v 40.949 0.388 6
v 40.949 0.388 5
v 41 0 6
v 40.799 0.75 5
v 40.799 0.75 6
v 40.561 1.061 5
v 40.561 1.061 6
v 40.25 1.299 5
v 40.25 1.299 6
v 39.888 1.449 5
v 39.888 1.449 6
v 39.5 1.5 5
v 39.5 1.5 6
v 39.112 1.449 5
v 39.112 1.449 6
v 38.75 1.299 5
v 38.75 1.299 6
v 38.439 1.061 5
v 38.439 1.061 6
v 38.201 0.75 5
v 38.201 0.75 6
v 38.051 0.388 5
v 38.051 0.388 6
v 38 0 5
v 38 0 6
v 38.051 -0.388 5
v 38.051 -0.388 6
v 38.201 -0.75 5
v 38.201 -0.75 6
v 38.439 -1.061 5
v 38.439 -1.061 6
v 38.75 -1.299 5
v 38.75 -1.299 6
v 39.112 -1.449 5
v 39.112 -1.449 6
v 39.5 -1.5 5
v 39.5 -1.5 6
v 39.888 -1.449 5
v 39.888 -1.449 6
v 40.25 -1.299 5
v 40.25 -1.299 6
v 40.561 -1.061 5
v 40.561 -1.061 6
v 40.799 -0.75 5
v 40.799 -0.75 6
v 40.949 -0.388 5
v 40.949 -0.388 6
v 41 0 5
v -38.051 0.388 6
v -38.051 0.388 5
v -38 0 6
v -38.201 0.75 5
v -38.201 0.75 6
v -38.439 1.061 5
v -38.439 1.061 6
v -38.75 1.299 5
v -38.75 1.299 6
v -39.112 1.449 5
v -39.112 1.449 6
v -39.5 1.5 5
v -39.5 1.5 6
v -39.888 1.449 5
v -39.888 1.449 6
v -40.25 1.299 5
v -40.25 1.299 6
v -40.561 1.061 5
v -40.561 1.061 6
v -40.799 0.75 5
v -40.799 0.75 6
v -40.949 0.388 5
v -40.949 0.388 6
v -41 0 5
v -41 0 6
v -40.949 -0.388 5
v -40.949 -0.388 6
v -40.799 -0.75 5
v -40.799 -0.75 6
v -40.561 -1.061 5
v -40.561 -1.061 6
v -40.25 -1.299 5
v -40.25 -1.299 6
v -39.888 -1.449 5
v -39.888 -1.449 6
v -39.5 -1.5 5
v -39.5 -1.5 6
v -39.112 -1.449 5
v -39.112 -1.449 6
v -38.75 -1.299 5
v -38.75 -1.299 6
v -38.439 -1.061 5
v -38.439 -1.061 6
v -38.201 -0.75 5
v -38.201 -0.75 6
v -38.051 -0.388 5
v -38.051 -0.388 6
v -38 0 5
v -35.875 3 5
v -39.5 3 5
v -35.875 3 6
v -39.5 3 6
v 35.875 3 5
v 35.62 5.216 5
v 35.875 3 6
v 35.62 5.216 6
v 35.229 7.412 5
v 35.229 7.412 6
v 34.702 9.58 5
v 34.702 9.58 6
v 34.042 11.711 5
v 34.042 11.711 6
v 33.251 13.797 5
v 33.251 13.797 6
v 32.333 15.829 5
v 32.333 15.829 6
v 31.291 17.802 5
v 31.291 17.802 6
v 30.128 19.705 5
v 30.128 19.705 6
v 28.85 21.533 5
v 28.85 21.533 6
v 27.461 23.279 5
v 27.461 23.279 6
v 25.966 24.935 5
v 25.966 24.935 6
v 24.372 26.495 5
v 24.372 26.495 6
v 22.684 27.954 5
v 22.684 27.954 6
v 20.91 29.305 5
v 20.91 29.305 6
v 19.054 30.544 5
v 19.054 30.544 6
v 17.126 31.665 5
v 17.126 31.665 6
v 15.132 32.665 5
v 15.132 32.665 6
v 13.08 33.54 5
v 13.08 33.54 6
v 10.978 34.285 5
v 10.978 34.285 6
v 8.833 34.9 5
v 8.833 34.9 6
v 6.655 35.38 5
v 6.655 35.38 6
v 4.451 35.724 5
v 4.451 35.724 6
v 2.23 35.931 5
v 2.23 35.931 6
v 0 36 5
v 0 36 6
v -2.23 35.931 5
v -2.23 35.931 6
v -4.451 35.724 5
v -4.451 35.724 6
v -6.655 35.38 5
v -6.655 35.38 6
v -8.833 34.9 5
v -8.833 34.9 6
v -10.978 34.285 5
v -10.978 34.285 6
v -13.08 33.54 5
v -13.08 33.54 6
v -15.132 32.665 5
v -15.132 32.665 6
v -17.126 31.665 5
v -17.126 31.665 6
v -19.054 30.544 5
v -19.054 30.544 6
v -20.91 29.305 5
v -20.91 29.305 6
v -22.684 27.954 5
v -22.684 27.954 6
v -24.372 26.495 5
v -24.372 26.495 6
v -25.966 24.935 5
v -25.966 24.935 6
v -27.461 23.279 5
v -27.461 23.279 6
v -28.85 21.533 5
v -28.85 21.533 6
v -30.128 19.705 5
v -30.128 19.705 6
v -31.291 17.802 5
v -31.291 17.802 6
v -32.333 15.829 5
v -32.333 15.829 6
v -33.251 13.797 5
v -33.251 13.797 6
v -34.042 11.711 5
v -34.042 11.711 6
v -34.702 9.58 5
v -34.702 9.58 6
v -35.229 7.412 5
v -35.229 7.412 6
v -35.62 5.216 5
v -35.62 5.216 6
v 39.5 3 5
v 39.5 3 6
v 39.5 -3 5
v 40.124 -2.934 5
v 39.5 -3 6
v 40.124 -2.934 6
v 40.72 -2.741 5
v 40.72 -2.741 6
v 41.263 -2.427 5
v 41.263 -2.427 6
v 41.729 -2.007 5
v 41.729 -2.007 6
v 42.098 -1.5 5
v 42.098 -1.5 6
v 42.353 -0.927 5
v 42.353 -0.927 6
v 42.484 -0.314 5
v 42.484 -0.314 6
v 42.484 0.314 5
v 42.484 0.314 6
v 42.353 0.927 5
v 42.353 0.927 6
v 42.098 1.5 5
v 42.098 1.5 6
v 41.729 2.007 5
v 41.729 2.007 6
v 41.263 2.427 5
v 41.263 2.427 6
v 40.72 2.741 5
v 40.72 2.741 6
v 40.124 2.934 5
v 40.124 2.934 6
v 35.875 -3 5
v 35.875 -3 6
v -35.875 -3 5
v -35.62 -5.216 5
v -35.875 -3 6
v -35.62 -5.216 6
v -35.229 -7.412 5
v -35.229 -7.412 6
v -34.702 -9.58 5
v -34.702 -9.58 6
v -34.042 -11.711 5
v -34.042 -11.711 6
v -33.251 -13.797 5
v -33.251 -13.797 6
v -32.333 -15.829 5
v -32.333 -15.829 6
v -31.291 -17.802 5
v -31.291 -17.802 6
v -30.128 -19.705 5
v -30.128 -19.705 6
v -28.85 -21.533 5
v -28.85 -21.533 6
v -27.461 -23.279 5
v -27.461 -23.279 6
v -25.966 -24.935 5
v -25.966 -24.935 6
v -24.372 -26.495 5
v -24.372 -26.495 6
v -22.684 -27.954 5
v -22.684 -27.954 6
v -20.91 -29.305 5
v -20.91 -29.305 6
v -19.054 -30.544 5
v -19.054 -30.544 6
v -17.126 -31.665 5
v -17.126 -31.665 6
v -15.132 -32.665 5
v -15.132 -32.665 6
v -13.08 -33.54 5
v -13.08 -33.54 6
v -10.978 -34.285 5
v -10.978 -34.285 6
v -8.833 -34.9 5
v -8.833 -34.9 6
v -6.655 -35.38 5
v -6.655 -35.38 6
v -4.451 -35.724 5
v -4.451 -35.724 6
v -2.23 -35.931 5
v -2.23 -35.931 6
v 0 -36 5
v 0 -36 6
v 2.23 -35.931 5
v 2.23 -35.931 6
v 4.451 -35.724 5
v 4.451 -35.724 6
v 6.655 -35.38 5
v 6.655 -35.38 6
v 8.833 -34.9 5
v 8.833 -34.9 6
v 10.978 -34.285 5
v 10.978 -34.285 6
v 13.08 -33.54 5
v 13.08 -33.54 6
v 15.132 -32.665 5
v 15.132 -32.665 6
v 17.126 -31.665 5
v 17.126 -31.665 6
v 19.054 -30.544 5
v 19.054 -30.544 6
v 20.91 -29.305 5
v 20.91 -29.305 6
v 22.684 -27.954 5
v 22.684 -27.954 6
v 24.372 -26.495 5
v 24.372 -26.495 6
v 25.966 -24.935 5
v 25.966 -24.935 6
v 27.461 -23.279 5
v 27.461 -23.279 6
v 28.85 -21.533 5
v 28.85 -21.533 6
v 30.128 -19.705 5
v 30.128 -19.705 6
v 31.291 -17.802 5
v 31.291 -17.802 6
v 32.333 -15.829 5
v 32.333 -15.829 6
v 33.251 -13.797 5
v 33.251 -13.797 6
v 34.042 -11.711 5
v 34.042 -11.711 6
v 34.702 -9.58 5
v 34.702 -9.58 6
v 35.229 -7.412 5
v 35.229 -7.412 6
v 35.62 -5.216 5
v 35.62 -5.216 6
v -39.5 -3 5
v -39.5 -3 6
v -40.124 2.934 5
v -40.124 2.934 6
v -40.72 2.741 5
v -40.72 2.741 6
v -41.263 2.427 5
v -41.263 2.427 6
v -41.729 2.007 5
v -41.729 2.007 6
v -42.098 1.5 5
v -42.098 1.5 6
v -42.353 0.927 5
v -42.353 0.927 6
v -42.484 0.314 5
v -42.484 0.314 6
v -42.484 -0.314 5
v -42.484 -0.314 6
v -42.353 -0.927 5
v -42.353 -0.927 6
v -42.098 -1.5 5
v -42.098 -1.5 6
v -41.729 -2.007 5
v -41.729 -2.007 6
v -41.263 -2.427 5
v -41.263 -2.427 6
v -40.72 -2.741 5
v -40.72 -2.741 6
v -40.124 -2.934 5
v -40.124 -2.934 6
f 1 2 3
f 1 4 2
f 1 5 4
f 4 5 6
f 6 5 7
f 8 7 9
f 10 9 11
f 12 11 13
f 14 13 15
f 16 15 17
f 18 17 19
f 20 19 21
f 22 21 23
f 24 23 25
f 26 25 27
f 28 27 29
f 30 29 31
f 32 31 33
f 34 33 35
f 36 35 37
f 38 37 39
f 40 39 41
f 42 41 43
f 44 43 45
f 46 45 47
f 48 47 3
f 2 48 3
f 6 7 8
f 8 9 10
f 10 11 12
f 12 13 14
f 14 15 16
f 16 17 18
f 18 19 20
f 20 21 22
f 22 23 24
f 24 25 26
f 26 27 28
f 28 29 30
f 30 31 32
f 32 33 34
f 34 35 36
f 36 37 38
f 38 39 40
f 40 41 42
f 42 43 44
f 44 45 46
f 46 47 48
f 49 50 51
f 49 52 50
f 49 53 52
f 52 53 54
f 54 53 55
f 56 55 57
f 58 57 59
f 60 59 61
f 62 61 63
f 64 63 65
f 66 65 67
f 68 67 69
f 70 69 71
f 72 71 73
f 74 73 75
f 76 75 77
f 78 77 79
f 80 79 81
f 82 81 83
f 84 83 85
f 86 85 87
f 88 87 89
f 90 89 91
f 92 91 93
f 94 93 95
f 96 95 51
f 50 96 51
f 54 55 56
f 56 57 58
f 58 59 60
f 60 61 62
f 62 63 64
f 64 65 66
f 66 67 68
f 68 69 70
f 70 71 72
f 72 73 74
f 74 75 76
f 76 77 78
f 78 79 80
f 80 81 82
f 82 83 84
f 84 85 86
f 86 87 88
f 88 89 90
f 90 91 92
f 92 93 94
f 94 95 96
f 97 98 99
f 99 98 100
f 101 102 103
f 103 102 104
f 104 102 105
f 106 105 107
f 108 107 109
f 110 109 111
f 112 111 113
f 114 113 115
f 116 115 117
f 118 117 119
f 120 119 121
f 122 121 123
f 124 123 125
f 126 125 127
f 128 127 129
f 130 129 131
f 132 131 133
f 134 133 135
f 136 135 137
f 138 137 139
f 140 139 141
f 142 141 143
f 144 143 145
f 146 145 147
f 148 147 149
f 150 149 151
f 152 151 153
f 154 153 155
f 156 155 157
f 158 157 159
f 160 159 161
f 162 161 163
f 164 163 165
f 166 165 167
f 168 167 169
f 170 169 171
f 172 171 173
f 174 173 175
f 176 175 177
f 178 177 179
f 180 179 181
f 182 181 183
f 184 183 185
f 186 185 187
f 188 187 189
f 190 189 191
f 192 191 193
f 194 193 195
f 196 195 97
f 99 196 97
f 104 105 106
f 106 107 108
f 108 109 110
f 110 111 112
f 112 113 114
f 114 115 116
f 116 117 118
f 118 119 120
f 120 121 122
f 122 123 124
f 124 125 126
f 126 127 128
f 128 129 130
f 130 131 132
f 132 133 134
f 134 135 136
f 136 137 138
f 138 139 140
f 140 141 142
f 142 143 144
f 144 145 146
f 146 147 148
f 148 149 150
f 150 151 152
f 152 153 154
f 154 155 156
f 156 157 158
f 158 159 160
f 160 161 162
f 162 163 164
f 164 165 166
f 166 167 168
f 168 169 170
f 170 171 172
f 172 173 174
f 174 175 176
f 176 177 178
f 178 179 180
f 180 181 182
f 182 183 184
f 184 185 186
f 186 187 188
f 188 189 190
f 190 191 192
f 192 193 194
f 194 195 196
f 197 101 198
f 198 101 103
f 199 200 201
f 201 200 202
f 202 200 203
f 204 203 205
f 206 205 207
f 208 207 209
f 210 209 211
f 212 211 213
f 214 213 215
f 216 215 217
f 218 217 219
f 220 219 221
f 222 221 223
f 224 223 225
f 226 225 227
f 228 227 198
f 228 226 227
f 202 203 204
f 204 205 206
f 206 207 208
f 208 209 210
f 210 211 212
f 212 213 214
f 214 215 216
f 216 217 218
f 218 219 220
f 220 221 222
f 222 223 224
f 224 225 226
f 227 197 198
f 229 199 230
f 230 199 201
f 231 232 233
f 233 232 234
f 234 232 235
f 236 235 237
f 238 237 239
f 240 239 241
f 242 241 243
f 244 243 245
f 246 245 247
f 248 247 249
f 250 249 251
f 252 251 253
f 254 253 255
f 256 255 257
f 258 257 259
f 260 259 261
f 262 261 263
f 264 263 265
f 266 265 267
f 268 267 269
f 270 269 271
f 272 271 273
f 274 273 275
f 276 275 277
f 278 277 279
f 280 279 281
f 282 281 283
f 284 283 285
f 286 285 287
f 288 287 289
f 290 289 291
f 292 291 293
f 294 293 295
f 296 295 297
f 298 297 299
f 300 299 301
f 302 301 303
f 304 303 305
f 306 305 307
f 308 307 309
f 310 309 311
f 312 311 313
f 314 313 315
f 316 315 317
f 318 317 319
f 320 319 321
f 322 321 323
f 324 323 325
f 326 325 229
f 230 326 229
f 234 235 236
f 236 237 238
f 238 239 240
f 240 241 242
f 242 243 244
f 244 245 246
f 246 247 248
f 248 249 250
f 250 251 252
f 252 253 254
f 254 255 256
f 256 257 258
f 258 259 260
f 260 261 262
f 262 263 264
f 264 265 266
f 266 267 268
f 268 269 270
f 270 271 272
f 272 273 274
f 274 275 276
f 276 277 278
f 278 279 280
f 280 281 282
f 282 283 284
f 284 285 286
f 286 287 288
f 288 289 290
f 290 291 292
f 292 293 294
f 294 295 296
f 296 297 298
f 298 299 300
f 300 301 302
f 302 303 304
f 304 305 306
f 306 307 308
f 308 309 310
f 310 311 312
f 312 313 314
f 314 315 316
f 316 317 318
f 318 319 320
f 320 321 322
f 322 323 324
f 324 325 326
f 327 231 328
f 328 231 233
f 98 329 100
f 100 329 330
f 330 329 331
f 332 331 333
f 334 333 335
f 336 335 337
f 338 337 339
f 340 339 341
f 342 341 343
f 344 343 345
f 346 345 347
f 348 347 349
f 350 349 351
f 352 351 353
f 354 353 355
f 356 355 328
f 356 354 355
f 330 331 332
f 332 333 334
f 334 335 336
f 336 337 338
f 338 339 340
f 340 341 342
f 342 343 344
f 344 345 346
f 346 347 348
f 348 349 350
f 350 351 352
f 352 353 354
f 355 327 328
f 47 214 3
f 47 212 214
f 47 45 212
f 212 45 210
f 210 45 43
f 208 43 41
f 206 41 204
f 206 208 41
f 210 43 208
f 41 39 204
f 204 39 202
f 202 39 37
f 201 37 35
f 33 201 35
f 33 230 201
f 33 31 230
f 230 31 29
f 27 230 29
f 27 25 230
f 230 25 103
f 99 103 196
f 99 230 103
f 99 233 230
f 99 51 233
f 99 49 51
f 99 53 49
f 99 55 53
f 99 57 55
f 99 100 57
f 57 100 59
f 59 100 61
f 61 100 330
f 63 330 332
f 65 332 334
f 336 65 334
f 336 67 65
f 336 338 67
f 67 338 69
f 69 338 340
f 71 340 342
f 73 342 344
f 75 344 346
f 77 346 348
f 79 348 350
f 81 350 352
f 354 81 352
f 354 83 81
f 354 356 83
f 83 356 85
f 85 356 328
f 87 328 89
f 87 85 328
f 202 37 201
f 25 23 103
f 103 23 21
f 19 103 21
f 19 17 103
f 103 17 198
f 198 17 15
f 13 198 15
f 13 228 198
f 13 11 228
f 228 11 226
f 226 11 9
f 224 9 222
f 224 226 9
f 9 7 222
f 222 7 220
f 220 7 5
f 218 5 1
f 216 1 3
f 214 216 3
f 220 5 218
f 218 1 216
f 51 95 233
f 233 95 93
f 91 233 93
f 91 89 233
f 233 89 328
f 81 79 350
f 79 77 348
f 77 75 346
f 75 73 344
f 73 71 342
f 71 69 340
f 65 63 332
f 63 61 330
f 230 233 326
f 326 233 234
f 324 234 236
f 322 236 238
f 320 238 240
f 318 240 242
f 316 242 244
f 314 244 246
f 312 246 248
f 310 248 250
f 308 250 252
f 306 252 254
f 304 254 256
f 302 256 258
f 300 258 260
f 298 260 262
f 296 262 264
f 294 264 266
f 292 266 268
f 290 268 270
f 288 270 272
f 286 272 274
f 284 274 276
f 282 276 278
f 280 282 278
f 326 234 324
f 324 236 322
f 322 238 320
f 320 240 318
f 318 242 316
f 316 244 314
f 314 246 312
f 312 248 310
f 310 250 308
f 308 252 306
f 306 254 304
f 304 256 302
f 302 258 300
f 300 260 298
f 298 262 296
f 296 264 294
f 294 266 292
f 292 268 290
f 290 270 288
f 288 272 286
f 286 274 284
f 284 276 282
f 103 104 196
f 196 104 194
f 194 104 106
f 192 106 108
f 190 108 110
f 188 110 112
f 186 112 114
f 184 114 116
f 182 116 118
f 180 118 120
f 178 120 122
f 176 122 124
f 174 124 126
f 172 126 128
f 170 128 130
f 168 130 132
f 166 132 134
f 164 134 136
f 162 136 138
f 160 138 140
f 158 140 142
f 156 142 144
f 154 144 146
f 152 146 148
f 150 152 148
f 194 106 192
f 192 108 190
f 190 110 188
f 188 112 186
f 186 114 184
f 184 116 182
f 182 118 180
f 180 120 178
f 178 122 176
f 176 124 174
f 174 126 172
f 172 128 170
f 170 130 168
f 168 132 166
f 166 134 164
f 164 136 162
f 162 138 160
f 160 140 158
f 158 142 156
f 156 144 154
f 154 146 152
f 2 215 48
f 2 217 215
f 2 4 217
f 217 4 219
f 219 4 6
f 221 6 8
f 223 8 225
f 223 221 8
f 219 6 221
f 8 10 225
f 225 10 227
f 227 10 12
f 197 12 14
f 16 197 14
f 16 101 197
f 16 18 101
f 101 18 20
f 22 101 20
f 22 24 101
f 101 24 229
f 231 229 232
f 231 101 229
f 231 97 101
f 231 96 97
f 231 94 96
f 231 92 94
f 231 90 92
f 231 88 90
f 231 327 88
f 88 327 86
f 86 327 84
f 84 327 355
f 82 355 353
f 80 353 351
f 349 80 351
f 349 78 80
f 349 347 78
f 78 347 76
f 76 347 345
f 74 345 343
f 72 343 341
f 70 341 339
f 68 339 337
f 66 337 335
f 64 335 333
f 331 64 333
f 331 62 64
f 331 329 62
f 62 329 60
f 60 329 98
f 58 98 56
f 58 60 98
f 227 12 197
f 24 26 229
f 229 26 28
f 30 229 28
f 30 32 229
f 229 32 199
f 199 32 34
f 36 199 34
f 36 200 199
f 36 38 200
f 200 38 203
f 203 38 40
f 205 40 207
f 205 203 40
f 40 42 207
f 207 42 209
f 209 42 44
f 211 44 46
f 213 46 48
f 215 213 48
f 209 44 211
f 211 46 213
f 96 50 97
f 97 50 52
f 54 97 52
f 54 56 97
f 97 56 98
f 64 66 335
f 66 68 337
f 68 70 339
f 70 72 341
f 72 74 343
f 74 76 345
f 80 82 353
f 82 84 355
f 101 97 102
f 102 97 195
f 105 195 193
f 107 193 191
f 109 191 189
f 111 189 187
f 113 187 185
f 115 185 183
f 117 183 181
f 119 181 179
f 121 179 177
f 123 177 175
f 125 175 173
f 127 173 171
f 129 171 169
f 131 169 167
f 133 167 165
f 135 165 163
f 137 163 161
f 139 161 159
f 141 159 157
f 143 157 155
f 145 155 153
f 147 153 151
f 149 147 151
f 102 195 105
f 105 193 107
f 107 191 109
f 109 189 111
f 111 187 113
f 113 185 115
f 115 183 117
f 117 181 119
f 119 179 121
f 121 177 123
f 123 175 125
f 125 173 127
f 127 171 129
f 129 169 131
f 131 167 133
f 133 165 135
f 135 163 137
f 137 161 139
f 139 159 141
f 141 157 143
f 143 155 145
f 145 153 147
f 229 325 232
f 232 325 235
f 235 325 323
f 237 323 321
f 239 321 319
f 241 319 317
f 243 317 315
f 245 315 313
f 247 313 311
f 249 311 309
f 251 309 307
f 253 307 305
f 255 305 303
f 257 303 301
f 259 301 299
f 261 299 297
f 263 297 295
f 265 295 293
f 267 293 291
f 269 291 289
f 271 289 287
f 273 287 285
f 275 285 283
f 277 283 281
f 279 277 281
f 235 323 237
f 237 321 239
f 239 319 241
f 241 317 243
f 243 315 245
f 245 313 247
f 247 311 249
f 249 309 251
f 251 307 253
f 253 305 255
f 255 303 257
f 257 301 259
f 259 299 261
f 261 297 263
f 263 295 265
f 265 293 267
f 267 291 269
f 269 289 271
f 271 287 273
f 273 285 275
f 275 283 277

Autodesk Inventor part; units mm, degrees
ref_plane "YZ Plane" through (0, 0, 0) normal (1, 0, 0) x (0, 1, 0)
ref_plane "XZ Plane" through (0, 0, 0) normal (0, 1, 0) x (-1, 0, 0)
ref_plane "XY Plane" through (0, 0, 0) normal (0, 0, 1) x (1, 0, 0)
ref_plane "Work Plane1" through (0, 0, 5) normal (0, 0, 1) x (1, 0, 0)
sketch "Sketch1" plane through (0, 0, 5) normal (0, 0, 1) x (1, 0, 0)
  circle A0 centre (-39.5, 0) radius 1.5
  arc A1 (-39.5, 3) -> (-39.5, -3) centre (-39.5, 0) ccw
  line L0 (-39.5, -3) -> (-35.8748, -3)
  line L1 (-39.5, 3) -> (-35.8748, 3)
  circle A2 centre (39.5, 0) radius 1.5
  arc A3 (39.5, -3) -> (39.5, 3) centre (39.5, 0) ccw
  line L2 (39.5, -3) -> (35.8748, -3)
  line L3 (39.5, 3) -> (35.8748, 3)
  arc A4 (-35.8748, -3) -> (35.8748, -3) centre (0, 0) ccw
  arc A5 (35.8748, 3) -> (-35.8748, 3) centre (0, 0) ccw
extrude "Extrusion3" add sketch "Sketch1" along normal blind 1
properties part number "frame4"
